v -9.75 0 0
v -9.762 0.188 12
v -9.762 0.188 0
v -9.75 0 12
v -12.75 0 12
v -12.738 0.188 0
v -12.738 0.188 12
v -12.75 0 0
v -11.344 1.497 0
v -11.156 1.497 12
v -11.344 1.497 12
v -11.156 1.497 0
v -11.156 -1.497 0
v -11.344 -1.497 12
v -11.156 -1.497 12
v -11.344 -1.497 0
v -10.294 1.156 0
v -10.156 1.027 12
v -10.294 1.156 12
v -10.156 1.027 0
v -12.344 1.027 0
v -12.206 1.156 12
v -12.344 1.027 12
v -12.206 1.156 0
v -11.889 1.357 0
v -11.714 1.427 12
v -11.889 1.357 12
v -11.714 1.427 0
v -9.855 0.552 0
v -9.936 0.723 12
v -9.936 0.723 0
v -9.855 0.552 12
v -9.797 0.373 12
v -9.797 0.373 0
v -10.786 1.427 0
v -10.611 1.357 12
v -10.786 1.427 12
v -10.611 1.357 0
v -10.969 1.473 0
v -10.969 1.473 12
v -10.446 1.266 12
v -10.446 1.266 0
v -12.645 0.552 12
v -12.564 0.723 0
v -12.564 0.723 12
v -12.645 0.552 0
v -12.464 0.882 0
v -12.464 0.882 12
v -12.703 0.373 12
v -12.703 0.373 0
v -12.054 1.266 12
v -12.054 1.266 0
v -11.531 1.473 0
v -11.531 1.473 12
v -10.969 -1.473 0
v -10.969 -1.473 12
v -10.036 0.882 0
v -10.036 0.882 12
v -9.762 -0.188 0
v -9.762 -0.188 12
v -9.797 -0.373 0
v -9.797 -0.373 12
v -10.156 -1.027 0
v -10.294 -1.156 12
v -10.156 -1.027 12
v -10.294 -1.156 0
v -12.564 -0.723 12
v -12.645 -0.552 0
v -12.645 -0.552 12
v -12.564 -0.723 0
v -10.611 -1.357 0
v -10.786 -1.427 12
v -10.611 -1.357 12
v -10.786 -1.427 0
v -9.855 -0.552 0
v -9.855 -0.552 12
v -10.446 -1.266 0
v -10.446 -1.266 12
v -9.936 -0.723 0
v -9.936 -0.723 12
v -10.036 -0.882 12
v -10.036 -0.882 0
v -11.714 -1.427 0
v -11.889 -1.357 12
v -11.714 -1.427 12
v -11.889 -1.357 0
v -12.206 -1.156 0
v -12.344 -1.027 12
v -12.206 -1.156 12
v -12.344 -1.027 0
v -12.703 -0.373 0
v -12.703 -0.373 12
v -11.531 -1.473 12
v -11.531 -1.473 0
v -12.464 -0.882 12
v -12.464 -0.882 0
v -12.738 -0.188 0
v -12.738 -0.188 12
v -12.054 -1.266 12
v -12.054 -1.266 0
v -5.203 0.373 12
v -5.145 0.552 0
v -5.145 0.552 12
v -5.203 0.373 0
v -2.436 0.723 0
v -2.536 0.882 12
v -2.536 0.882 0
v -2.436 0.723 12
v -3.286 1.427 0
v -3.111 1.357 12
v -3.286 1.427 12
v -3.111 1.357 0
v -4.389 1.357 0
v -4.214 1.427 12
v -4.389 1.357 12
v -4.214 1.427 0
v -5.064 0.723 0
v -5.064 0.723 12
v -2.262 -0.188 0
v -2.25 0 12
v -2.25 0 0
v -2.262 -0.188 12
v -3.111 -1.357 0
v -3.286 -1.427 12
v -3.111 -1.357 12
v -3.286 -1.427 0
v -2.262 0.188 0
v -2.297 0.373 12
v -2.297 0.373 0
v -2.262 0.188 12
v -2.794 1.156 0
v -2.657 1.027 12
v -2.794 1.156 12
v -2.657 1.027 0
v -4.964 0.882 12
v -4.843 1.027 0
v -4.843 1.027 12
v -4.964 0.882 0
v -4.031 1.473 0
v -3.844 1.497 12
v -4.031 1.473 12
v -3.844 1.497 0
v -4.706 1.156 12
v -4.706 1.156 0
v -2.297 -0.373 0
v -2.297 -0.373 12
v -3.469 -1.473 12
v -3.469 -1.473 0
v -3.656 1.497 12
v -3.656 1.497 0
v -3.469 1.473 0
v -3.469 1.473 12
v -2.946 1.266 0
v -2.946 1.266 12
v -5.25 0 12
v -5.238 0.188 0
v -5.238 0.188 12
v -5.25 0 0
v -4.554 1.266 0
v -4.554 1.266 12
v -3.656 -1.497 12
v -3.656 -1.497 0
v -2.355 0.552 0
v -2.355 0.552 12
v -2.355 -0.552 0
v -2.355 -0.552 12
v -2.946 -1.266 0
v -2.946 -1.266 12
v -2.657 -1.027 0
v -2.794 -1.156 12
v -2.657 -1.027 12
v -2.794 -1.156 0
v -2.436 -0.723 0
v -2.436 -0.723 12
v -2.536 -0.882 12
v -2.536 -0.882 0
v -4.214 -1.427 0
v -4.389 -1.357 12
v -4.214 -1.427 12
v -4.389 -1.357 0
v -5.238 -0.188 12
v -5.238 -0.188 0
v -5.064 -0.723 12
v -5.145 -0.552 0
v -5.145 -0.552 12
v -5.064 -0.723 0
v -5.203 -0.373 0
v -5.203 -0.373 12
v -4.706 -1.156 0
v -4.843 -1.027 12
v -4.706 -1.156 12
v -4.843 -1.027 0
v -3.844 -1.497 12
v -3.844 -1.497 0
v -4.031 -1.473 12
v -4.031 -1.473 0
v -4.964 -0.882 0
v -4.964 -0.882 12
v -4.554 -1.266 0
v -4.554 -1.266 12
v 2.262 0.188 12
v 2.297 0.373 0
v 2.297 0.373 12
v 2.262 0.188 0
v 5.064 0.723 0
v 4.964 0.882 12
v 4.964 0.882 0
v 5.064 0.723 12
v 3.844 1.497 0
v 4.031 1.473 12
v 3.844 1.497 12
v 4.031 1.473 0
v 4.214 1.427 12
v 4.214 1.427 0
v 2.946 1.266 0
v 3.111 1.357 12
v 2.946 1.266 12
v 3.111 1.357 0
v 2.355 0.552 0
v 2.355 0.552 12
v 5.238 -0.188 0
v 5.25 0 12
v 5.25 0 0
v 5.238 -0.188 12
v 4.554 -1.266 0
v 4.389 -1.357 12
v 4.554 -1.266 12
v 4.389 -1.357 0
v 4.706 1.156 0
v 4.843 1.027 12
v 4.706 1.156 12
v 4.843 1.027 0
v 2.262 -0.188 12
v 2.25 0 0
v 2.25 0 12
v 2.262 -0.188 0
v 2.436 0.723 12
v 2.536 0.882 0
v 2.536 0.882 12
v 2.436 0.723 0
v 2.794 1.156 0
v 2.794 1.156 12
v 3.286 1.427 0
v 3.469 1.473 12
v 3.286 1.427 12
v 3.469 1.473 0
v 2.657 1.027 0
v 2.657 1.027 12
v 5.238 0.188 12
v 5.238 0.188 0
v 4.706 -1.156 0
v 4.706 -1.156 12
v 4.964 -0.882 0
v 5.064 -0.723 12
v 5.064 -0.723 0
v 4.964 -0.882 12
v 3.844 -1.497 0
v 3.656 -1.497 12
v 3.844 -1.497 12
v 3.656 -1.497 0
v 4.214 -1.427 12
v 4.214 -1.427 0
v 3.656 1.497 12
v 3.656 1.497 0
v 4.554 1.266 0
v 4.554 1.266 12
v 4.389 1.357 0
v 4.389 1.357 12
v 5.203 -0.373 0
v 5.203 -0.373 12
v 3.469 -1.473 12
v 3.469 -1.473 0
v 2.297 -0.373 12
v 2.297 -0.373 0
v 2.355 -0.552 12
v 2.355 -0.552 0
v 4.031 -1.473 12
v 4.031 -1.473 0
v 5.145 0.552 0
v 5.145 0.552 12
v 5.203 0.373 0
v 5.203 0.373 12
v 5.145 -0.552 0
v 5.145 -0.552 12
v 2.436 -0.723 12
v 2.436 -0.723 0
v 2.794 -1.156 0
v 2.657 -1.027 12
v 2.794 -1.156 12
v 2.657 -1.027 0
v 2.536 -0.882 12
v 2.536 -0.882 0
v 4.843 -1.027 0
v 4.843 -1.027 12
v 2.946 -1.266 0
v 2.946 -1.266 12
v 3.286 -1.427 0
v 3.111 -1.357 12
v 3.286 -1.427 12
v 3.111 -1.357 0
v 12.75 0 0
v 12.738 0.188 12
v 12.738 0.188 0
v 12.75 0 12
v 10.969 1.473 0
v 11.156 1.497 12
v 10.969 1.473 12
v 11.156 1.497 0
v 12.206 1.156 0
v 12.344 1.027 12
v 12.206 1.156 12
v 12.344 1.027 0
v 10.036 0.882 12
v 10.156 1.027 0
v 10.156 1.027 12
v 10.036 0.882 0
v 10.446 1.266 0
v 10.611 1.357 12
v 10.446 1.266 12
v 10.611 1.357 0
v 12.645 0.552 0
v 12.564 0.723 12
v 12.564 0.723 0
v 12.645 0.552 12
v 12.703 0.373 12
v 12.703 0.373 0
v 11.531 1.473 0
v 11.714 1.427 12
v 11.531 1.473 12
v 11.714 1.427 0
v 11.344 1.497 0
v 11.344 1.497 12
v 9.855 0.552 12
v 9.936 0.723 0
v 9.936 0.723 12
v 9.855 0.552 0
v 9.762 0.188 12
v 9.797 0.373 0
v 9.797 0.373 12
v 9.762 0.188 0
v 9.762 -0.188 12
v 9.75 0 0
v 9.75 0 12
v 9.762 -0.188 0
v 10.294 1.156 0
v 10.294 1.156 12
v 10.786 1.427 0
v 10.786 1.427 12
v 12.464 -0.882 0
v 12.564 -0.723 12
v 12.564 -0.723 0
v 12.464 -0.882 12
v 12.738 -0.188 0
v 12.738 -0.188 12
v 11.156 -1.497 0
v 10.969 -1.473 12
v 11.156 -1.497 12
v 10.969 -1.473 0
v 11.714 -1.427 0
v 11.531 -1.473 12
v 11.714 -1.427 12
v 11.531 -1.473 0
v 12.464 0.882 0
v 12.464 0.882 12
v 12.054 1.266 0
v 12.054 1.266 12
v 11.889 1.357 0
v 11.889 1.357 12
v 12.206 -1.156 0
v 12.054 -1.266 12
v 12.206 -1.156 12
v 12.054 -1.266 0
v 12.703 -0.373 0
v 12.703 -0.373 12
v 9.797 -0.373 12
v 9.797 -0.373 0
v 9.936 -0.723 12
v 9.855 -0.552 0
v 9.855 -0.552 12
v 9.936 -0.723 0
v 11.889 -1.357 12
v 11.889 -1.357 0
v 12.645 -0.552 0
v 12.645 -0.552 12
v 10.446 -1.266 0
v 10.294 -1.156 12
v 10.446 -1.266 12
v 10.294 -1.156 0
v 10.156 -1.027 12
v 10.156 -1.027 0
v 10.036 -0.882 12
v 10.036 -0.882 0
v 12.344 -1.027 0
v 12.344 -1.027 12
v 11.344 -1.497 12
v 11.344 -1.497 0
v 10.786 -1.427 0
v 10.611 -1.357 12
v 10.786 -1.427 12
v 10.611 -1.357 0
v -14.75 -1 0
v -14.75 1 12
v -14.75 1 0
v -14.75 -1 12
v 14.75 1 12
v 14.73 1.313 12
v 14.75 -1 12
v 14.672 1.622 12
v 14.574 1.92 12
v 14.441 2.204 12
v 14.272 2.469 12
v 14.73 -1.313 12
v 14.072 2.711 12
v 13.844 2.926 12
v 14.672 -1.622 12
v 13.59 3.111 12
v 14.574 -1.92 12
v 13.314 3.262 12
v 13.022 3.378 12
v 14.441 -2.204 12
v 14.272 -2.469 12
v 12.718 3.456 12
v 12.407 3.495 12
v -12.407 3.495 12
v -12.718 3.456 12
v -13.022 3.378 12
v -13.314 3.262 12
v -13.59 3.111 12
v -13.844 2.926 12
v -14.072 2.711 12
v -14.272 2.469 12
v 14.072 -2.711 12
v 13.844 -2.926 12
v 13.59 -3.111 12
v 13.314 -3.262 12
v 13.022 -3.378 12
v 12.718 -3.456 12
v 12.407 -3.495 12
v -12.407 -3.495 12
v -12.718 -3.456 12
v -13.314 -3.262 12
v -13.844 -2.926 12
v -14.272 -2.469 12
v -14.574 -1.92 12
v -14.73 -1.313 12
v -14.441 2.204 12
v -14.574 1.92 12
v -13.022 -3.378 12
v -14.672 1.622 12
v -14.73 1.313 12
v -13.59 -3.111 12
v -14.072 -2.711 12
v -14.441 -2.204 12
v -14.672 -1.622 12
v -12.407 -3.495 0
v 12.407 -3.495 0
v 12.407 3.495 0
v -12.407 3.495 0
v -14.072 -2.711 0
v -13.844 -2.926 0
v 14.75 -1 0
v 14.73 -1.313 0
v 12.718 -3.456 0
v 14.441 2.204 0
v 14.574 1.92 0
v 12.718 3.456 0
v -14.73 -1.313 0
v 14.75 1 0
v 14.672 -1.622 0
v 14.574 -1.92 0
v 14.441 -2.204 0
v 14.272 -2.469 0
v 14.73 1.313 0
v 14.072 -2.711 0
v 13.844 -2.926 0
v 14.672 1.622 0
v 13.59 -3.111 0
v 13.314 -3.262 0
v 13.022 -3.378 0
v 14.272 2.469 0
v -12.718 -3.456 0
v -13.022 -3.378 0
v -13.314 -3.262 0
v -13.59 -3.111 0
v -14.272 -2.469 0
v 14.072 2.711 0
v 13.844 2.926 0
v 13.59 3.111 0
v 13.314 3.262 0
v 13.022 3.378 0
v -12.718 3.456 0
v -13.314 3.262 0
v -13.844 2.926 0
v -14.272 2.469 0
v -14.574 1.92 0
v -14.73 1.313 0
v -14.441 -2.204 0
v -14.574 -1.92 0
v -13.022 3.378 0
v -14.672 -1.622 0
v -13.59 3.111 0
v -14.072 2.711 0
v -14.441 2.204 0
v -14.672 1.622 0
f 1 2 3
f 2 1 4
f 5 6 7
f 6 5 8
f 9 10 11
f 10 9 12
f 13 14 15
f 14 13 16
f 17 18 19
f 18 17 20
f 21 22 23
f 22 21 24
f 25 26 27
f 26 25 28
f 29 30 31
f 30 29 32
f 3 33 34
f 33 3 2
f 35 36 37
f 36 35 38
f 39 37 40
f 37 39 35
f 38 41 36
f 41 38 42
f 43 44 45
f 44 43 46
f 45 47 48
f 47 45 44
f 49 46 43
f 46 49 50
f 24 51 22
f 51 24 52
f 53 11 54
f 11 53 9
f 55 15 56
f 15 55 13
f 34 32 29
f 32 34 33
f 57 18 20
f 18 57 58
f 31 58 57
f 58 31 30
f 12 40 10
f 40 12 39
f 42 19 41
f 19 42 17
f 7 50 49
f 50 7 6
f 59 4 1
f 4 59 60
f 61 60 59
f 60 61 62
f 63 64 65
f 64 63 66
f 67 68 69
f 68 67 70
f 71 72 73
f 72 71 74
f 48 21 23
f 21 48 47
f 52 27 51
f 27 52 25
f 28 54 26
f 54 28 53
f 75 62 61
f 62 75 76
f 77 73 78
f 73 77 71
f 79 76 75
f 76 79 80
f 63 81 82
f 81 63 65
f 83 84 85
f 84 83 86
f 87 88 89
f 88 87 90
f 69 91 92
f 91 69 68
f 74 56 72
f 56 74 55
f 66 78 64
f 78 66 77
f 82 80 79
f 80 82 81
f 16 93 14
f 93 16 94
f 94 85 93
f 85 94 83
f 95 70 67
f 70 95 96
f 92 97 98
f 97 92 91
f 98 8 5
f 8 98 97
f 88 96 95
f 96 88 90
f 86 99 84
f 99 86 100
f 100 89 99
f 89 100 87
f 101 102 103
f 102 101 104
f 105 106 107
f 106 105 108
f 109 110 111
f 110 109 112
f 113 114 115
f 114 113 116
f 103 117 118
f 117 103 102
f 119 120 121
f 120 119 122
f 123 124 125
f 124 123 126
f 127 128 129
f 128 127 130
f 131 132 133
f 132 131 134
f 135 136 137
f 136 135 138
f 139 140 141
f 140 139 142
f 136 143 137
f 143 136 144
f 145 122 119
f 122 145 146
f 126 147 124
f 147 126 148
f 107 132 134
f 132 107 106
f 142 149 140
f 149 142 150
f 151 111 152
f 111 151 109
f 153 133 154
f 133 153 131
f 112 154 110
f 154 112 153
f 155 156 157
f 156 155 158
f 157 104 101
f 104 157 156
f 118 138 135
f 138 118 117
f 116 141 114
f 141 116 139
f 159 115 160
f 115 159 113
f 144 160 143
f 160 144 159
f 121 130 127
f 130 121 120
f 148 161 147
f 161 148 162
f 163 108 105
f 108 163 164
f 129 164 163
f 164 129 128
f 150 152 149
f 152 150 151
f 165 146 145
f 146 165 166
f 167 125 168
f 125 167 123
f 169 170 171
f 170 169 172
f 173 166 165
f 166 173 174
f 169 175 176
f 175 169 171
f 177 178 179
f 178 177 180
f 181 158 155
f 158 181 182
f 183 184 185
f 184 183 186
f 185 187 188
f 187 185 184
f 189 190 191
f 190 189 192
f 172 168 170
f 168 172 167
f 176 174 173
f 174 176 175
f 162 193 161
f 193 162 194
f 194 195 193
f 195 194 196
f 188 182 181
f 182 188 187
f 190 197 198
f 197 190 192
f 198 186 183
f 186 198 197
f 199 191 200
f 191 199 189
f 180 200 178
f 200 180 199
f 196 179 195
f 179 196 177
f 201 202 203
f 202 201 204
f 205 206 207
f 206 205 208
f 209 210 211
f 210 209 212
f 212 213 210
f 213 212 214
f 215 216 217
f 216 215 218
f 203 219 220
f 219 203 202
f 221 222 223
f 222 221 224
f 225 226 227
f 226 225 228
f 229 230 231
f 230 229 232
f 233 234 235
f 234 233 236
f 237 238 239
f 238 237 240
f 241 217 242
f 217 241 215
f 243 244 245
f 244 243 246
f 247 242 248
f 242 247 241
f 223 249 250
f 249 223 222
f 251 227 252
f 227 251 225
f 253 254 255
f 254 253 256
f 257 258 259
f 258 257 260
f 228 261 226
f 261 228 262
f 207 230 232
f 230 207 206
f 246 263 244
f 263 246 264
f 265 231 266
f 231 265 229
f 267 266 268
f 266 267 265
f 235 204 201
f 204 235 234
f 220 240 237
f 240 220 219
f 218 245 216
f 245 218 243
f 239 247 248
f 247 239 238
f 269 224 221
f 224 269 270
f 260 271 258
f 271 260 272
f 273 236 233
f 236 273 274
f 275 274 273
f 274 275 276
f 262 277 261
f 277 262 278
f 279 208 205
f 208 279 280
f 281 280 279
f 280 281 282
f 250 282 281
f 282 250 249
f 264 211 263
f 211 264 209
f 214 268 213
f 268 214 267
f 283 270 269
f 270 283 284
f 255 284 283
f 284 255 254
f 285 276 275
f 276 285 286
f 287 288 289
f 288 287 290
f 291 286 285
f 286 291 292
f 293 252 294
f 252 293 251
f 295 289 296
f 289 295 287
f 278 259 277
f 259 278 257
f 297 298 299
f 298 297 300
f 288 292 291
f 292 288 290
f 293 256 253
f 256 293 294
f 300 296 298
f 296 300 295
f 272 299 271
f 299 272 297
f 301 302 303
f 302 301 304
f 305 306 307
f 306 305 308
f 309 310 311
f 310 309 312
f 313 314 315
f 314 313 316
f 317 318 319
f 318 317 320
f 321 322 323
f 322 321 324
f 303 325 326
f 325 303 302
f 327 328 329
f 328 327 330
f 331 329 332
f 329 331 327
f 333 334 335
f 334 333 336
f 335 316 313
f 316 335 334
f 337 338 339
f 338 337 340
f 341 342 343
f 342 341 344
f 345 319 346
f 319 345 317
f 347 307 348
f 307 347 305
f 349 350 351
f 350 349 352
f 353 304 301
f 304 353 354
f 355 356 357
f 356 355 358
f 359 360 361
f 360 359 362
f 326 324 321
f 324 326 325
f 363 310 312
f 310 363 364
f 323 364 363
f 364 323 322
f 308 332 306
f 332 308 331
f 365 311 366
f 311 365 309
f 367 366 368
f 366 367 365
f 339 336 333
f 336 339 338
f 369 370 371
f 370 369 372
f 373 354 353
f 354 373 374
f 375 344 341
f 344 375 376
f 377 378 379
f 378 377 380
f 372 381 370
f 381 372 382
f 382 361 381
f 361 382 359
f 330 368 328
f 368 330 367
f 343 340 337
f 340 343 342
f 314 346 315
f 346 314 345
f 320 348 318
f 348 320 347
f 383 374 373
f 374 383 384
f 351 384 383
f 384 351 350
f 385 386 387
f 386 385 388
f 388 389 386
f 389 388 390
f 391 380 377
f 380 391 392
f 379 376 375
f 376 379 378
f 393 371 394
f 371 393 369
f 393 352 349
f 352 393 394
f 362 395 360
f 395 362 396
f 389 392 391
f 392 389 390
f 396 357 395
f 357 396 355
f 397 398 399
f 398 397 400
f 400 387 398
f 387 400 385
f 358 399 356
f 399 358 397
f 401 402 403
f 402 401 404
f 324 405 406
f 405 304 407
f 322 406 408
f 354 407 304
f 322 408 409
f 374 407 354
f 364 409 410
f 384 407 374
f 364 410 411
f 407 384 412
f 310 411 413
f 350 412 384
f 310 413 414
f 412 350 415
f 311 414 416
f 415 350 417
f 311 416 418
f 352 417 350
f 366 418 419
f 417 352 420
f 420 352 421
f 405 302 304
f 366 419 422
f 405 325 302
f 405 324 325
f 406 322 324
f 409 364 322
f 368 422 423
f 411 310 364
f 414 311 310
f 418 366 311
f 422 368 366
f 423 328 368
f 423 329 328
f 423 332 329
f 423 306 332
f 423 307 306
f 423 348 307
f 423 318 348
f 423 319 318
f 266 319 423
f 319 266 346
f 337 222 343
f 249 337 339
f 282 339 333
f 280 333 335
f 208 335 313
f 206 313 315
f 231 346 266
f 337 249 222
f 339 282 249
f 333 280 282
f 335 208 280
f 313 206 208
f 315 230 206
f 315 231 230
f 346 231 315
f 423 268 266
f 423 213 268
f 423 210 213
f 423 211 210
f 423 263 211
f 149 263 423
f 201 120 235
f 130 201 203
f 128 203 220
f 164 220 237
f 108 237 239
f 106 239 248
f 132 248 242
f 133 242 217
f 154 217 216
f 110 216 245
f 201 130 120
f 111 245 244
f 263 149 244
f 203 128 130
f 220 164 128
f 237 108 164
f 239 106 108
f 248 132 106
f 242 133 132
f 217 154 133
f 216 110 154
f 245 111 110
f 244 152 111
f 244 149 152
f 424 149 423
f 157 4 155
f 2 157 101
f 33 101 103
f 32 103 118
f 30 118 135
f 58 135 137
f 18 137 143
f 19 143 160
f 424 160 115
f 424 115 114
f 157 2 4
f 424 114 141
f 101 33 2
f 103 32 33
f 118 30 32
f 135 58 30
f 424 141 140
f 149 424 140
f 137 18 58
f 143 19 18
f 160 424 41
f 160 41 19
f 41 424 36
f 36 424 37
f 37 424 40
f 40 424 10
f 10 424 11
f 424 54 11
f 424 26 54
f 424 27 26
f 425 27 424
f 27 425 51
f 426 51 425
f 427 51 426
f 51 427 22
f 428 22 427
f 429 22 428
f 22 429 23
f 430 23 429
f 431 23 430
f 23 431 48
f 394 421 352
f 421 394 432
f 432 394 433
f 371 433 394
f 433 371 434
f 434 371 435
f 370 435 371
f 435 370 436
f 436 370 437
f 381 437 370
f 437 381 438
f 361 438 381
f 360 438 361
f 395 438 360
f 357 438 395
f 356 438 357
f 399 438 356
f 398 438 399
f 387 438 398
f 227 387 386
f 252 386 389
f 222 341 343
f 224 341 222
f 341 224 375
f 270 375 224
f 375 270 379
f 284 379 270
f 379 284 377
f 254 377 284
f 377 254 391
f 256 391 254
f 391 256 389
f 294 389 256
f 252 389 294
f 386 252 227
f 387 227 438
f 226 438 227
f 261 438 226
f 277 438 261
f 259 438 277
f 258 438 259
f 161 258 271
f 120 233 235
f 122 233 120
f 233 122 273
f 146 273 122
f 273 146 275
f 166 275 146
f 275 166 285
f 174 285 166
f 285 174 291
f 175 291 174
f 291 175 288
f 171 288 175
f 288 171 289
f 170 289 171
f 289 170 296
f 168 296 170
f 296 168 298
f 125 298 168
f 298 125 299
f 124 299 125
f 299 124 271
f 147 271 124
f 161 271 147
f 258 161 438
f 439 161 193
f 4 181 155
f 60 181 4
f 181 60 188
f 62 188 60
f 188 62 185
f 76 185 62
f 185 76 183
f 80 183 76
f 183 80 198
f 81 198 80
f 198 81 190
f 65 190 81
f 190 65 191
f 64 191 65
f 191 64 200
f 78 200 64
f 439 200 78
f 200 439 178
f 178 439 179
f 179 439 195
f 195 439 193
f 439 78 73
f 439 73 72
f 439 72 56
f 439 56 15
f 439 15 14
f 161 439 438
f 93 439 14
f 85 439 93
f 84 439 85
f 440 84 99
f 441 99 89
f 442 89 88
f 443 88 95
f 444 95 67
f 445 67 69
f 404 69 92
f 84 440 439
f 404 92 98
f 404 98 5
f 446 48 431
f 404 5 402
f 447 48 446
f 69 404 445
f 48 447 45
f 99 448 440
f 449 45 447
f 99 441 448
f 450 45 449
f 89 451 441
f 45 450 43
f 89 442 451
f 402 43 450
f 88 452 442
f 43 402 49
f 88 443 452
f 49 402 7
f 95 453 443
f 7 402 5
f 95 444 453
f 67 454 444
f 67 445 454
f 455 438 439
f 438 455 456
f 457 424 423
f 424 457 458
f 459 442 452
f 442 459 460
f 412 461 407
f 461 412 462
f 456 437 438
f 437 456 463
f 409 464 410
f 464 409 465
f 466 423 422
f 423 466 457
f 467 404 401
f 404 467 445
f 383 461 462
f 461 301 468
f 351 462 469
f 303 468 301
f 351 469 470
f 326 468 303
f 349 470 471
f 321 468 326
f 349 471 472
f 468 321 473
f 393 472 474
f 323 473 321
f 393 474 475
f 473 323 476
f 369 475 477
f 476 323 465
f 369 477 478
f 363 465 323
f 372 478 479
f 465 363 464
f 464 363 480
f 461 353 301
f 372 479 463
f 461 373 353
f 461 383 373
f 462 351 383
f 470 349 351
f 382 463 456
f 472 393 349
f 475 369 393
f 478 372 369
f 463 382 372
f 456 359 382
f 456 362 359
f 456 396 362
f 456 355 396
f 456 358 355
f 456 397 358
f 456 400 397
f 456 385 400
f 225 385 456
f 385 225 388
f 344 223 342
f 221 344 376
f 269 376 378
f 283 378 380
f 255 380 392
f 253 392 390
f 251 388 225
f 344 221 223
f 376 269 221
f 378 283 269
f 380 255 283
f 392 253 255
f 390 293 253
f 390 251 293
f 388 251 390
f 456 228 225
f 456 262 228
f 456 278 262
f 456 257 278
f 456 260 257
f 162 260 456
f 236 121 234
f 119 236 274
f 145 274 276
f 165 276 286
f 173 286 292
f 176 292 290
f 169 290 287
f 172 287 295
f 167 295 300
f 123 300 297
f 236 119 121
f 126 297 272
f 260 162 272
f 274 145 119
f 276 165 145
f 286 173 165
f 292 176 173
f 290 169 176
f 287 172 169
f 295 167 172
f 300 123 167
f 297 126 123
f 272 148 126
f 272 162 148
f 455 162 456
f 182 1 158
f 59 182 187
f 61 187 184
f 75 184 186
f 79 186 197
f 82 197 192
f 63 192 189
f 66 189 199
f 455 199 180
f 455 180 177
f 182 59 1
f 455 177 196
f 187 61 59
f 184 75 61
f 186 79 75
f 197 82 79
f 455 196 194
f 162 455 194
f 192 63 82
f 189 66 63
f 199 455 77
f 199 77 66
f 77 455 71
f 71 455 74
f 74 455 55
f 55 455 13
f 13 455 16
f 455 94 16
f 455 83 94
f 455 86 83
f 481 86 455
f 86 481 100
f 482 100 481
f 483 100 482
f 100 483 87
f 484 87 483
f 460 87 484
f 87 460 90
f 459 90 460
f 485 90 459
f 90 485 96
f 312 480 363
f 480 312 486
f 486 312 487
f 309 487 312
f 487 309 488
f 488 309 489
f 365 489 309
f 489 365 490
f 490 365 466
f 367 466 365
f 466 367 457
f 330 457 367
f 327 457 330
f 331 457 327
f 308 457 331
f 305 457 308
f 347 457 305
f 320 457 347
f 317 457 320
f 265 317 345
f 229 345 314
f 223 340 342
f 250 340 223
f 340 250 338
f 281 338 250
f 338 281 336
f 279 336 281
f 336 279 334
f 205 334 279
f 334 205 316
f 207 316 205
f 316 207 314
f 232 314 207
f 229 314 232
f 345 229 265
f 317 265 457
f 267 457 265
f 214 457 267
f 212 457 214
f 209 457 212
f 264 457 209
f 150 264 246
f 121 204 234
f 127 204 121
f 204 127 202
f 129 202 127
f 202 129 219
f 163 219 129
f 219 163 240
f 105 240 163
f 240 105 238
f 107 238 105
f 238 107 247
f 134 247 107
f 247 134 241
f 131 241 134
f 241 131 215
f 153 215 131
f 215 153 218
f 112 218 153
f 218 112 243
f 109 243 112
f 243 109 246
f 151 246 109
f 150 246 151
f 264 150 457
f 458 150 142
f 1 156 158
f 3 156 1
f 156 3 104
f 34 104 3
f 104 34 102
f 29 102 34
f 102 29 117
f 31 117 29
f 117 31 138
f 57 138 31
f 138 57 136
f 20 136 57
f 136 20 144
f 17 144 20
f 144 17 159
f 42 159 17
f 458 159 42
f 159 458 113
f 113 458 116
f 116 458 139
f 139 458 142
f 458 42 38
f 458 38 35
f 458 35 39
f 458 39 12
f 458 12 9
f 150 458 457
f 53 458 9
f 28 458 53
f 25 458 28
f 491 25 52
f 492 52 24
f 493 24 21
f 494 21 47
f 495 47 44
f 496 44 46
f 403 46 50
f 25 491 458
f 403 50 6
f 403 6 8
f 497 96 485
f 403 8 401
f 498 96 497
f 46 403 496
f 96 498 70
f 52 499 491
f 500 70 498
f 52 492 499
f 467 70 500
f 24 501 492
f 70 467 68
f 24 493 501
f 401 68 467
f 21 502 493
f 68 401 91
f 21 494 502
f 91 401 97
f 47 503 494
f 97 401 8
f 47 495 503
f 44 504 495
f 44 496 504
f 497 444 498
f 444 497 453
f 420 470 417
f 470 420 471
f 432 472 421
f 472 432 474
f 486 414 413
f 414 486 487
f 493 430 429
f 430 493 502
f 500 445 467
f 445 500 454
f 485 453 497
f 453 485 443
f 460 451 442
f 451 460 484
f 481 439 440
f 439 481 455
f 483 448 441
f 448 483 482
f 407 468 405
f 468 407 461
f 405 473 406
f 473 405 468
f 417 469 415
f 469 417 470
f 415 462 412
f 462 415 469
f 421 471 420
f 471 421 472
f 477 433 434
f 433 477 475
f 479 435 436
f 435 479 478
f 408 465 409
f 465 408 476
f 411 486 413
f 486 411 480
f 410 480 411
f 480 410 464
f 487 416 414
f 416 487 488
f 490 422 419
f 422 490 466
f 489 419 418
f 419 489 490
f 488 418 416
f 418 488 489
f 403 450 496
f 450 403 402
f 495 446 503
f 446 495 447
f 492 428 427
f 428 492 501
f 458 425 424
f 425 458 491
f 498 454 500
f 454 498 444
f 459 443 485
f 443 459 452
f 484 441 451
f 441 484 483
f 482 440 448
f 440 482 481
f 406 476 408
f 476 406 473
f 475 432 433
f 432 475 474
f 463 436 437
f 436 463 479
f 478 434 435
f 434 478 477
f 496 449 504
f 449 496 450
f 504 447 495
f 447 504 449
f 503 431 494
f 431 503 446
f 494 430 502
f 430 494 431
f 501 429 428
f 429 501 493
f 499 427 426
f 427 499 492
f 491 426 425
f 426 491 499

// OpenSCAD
$fn = 50;


difference() {
	union() {
		translate(v = [0, 0, 0]) {
			rotate(a = [0, 0, 0]) {
				hull() {
					translate(v = [-12.2500000000, 1.0000000000, 0]) {
						rotate(a = [0, 0, 0]) {
							translate(v = [0, 0, 0]) {
								rotate(a = [0, 0, 0]) {
									cylinder(h = 12, r = 2.5000000000);
								}
							}
						}
					}
					translate(v = [12.2500000000, 1.0000000000, 0]) {
						rotate(a = [0, 0, 0]) {
							translate(v = [0, 0, 0]) {
								rotate(a = [0, 0, 0]) {
									cylinder(h = 12, r = 2.5000000000);
								}
							}
						}
					}
					translate(v = [-12.2500000000, -1.0000000000, 0]) {
						rotate(a = [0, 0, 0]) {
							translate(v = [0, 0, 0]) {
								rotate(a = [0, 0, 0]) {
									cylinder(h = 12, r = 2.5000000000);
								}
							}
						}
					}
					translate(v = [12.2500000000, -1.0000000000, 0]) {
						rotate(a = [0, 0, 0]) {
							translate(v = [0, 0, 0]) {
								rotate(a = [0, 0, 0]) {
									cylinder(h = 12, r = 2.5000000000);
								}
							}
						}
					}
				}
			}
		}
	}
	union() {
		translate(v = [-11.2500000000, 0.0000000000, 0]) {
			rotate(a = [0, 0, 0]) {
				translate(v = [0, 0, -50]) {
					rotate(a = [0, 0, 0]) {
						cylinder(h = 100, r = 1.5000000000);
					}
				}
			}
		}
		translate(v = [-3.7500000000, 0.0000000000, 0]) {
			rotate(a = [0, 0, 0]) {
				translate(v = [0, 0, -50]) {
					rotate(a = [0, 0, 0]) {
						cylinder(h = 100, r = 1.5000000000);
					}
				}
			}
		}
		translate(v = [3.7500000000, 0.0000000000, 0]) {
			rotate(a = [0, 0, 0]) {
				translate(v = [0, 0, -50]) {
					rotate(a = [0, 0, 0]) {
						cylinder(h = 100, r = 1.5000000000);
					}
				}
			}
		}
		translate(v = [11.2500000000, 0.0000000000, 0]) {
			rotate(a = [0, 0, 0]) {
				translate(v = [0, 0, -50]) {
					rotate(a = [0, 0, 0]) {
						cylinder(h = 100, r = 1.5000000000);
					}
				}
			}
		}
	}
}
